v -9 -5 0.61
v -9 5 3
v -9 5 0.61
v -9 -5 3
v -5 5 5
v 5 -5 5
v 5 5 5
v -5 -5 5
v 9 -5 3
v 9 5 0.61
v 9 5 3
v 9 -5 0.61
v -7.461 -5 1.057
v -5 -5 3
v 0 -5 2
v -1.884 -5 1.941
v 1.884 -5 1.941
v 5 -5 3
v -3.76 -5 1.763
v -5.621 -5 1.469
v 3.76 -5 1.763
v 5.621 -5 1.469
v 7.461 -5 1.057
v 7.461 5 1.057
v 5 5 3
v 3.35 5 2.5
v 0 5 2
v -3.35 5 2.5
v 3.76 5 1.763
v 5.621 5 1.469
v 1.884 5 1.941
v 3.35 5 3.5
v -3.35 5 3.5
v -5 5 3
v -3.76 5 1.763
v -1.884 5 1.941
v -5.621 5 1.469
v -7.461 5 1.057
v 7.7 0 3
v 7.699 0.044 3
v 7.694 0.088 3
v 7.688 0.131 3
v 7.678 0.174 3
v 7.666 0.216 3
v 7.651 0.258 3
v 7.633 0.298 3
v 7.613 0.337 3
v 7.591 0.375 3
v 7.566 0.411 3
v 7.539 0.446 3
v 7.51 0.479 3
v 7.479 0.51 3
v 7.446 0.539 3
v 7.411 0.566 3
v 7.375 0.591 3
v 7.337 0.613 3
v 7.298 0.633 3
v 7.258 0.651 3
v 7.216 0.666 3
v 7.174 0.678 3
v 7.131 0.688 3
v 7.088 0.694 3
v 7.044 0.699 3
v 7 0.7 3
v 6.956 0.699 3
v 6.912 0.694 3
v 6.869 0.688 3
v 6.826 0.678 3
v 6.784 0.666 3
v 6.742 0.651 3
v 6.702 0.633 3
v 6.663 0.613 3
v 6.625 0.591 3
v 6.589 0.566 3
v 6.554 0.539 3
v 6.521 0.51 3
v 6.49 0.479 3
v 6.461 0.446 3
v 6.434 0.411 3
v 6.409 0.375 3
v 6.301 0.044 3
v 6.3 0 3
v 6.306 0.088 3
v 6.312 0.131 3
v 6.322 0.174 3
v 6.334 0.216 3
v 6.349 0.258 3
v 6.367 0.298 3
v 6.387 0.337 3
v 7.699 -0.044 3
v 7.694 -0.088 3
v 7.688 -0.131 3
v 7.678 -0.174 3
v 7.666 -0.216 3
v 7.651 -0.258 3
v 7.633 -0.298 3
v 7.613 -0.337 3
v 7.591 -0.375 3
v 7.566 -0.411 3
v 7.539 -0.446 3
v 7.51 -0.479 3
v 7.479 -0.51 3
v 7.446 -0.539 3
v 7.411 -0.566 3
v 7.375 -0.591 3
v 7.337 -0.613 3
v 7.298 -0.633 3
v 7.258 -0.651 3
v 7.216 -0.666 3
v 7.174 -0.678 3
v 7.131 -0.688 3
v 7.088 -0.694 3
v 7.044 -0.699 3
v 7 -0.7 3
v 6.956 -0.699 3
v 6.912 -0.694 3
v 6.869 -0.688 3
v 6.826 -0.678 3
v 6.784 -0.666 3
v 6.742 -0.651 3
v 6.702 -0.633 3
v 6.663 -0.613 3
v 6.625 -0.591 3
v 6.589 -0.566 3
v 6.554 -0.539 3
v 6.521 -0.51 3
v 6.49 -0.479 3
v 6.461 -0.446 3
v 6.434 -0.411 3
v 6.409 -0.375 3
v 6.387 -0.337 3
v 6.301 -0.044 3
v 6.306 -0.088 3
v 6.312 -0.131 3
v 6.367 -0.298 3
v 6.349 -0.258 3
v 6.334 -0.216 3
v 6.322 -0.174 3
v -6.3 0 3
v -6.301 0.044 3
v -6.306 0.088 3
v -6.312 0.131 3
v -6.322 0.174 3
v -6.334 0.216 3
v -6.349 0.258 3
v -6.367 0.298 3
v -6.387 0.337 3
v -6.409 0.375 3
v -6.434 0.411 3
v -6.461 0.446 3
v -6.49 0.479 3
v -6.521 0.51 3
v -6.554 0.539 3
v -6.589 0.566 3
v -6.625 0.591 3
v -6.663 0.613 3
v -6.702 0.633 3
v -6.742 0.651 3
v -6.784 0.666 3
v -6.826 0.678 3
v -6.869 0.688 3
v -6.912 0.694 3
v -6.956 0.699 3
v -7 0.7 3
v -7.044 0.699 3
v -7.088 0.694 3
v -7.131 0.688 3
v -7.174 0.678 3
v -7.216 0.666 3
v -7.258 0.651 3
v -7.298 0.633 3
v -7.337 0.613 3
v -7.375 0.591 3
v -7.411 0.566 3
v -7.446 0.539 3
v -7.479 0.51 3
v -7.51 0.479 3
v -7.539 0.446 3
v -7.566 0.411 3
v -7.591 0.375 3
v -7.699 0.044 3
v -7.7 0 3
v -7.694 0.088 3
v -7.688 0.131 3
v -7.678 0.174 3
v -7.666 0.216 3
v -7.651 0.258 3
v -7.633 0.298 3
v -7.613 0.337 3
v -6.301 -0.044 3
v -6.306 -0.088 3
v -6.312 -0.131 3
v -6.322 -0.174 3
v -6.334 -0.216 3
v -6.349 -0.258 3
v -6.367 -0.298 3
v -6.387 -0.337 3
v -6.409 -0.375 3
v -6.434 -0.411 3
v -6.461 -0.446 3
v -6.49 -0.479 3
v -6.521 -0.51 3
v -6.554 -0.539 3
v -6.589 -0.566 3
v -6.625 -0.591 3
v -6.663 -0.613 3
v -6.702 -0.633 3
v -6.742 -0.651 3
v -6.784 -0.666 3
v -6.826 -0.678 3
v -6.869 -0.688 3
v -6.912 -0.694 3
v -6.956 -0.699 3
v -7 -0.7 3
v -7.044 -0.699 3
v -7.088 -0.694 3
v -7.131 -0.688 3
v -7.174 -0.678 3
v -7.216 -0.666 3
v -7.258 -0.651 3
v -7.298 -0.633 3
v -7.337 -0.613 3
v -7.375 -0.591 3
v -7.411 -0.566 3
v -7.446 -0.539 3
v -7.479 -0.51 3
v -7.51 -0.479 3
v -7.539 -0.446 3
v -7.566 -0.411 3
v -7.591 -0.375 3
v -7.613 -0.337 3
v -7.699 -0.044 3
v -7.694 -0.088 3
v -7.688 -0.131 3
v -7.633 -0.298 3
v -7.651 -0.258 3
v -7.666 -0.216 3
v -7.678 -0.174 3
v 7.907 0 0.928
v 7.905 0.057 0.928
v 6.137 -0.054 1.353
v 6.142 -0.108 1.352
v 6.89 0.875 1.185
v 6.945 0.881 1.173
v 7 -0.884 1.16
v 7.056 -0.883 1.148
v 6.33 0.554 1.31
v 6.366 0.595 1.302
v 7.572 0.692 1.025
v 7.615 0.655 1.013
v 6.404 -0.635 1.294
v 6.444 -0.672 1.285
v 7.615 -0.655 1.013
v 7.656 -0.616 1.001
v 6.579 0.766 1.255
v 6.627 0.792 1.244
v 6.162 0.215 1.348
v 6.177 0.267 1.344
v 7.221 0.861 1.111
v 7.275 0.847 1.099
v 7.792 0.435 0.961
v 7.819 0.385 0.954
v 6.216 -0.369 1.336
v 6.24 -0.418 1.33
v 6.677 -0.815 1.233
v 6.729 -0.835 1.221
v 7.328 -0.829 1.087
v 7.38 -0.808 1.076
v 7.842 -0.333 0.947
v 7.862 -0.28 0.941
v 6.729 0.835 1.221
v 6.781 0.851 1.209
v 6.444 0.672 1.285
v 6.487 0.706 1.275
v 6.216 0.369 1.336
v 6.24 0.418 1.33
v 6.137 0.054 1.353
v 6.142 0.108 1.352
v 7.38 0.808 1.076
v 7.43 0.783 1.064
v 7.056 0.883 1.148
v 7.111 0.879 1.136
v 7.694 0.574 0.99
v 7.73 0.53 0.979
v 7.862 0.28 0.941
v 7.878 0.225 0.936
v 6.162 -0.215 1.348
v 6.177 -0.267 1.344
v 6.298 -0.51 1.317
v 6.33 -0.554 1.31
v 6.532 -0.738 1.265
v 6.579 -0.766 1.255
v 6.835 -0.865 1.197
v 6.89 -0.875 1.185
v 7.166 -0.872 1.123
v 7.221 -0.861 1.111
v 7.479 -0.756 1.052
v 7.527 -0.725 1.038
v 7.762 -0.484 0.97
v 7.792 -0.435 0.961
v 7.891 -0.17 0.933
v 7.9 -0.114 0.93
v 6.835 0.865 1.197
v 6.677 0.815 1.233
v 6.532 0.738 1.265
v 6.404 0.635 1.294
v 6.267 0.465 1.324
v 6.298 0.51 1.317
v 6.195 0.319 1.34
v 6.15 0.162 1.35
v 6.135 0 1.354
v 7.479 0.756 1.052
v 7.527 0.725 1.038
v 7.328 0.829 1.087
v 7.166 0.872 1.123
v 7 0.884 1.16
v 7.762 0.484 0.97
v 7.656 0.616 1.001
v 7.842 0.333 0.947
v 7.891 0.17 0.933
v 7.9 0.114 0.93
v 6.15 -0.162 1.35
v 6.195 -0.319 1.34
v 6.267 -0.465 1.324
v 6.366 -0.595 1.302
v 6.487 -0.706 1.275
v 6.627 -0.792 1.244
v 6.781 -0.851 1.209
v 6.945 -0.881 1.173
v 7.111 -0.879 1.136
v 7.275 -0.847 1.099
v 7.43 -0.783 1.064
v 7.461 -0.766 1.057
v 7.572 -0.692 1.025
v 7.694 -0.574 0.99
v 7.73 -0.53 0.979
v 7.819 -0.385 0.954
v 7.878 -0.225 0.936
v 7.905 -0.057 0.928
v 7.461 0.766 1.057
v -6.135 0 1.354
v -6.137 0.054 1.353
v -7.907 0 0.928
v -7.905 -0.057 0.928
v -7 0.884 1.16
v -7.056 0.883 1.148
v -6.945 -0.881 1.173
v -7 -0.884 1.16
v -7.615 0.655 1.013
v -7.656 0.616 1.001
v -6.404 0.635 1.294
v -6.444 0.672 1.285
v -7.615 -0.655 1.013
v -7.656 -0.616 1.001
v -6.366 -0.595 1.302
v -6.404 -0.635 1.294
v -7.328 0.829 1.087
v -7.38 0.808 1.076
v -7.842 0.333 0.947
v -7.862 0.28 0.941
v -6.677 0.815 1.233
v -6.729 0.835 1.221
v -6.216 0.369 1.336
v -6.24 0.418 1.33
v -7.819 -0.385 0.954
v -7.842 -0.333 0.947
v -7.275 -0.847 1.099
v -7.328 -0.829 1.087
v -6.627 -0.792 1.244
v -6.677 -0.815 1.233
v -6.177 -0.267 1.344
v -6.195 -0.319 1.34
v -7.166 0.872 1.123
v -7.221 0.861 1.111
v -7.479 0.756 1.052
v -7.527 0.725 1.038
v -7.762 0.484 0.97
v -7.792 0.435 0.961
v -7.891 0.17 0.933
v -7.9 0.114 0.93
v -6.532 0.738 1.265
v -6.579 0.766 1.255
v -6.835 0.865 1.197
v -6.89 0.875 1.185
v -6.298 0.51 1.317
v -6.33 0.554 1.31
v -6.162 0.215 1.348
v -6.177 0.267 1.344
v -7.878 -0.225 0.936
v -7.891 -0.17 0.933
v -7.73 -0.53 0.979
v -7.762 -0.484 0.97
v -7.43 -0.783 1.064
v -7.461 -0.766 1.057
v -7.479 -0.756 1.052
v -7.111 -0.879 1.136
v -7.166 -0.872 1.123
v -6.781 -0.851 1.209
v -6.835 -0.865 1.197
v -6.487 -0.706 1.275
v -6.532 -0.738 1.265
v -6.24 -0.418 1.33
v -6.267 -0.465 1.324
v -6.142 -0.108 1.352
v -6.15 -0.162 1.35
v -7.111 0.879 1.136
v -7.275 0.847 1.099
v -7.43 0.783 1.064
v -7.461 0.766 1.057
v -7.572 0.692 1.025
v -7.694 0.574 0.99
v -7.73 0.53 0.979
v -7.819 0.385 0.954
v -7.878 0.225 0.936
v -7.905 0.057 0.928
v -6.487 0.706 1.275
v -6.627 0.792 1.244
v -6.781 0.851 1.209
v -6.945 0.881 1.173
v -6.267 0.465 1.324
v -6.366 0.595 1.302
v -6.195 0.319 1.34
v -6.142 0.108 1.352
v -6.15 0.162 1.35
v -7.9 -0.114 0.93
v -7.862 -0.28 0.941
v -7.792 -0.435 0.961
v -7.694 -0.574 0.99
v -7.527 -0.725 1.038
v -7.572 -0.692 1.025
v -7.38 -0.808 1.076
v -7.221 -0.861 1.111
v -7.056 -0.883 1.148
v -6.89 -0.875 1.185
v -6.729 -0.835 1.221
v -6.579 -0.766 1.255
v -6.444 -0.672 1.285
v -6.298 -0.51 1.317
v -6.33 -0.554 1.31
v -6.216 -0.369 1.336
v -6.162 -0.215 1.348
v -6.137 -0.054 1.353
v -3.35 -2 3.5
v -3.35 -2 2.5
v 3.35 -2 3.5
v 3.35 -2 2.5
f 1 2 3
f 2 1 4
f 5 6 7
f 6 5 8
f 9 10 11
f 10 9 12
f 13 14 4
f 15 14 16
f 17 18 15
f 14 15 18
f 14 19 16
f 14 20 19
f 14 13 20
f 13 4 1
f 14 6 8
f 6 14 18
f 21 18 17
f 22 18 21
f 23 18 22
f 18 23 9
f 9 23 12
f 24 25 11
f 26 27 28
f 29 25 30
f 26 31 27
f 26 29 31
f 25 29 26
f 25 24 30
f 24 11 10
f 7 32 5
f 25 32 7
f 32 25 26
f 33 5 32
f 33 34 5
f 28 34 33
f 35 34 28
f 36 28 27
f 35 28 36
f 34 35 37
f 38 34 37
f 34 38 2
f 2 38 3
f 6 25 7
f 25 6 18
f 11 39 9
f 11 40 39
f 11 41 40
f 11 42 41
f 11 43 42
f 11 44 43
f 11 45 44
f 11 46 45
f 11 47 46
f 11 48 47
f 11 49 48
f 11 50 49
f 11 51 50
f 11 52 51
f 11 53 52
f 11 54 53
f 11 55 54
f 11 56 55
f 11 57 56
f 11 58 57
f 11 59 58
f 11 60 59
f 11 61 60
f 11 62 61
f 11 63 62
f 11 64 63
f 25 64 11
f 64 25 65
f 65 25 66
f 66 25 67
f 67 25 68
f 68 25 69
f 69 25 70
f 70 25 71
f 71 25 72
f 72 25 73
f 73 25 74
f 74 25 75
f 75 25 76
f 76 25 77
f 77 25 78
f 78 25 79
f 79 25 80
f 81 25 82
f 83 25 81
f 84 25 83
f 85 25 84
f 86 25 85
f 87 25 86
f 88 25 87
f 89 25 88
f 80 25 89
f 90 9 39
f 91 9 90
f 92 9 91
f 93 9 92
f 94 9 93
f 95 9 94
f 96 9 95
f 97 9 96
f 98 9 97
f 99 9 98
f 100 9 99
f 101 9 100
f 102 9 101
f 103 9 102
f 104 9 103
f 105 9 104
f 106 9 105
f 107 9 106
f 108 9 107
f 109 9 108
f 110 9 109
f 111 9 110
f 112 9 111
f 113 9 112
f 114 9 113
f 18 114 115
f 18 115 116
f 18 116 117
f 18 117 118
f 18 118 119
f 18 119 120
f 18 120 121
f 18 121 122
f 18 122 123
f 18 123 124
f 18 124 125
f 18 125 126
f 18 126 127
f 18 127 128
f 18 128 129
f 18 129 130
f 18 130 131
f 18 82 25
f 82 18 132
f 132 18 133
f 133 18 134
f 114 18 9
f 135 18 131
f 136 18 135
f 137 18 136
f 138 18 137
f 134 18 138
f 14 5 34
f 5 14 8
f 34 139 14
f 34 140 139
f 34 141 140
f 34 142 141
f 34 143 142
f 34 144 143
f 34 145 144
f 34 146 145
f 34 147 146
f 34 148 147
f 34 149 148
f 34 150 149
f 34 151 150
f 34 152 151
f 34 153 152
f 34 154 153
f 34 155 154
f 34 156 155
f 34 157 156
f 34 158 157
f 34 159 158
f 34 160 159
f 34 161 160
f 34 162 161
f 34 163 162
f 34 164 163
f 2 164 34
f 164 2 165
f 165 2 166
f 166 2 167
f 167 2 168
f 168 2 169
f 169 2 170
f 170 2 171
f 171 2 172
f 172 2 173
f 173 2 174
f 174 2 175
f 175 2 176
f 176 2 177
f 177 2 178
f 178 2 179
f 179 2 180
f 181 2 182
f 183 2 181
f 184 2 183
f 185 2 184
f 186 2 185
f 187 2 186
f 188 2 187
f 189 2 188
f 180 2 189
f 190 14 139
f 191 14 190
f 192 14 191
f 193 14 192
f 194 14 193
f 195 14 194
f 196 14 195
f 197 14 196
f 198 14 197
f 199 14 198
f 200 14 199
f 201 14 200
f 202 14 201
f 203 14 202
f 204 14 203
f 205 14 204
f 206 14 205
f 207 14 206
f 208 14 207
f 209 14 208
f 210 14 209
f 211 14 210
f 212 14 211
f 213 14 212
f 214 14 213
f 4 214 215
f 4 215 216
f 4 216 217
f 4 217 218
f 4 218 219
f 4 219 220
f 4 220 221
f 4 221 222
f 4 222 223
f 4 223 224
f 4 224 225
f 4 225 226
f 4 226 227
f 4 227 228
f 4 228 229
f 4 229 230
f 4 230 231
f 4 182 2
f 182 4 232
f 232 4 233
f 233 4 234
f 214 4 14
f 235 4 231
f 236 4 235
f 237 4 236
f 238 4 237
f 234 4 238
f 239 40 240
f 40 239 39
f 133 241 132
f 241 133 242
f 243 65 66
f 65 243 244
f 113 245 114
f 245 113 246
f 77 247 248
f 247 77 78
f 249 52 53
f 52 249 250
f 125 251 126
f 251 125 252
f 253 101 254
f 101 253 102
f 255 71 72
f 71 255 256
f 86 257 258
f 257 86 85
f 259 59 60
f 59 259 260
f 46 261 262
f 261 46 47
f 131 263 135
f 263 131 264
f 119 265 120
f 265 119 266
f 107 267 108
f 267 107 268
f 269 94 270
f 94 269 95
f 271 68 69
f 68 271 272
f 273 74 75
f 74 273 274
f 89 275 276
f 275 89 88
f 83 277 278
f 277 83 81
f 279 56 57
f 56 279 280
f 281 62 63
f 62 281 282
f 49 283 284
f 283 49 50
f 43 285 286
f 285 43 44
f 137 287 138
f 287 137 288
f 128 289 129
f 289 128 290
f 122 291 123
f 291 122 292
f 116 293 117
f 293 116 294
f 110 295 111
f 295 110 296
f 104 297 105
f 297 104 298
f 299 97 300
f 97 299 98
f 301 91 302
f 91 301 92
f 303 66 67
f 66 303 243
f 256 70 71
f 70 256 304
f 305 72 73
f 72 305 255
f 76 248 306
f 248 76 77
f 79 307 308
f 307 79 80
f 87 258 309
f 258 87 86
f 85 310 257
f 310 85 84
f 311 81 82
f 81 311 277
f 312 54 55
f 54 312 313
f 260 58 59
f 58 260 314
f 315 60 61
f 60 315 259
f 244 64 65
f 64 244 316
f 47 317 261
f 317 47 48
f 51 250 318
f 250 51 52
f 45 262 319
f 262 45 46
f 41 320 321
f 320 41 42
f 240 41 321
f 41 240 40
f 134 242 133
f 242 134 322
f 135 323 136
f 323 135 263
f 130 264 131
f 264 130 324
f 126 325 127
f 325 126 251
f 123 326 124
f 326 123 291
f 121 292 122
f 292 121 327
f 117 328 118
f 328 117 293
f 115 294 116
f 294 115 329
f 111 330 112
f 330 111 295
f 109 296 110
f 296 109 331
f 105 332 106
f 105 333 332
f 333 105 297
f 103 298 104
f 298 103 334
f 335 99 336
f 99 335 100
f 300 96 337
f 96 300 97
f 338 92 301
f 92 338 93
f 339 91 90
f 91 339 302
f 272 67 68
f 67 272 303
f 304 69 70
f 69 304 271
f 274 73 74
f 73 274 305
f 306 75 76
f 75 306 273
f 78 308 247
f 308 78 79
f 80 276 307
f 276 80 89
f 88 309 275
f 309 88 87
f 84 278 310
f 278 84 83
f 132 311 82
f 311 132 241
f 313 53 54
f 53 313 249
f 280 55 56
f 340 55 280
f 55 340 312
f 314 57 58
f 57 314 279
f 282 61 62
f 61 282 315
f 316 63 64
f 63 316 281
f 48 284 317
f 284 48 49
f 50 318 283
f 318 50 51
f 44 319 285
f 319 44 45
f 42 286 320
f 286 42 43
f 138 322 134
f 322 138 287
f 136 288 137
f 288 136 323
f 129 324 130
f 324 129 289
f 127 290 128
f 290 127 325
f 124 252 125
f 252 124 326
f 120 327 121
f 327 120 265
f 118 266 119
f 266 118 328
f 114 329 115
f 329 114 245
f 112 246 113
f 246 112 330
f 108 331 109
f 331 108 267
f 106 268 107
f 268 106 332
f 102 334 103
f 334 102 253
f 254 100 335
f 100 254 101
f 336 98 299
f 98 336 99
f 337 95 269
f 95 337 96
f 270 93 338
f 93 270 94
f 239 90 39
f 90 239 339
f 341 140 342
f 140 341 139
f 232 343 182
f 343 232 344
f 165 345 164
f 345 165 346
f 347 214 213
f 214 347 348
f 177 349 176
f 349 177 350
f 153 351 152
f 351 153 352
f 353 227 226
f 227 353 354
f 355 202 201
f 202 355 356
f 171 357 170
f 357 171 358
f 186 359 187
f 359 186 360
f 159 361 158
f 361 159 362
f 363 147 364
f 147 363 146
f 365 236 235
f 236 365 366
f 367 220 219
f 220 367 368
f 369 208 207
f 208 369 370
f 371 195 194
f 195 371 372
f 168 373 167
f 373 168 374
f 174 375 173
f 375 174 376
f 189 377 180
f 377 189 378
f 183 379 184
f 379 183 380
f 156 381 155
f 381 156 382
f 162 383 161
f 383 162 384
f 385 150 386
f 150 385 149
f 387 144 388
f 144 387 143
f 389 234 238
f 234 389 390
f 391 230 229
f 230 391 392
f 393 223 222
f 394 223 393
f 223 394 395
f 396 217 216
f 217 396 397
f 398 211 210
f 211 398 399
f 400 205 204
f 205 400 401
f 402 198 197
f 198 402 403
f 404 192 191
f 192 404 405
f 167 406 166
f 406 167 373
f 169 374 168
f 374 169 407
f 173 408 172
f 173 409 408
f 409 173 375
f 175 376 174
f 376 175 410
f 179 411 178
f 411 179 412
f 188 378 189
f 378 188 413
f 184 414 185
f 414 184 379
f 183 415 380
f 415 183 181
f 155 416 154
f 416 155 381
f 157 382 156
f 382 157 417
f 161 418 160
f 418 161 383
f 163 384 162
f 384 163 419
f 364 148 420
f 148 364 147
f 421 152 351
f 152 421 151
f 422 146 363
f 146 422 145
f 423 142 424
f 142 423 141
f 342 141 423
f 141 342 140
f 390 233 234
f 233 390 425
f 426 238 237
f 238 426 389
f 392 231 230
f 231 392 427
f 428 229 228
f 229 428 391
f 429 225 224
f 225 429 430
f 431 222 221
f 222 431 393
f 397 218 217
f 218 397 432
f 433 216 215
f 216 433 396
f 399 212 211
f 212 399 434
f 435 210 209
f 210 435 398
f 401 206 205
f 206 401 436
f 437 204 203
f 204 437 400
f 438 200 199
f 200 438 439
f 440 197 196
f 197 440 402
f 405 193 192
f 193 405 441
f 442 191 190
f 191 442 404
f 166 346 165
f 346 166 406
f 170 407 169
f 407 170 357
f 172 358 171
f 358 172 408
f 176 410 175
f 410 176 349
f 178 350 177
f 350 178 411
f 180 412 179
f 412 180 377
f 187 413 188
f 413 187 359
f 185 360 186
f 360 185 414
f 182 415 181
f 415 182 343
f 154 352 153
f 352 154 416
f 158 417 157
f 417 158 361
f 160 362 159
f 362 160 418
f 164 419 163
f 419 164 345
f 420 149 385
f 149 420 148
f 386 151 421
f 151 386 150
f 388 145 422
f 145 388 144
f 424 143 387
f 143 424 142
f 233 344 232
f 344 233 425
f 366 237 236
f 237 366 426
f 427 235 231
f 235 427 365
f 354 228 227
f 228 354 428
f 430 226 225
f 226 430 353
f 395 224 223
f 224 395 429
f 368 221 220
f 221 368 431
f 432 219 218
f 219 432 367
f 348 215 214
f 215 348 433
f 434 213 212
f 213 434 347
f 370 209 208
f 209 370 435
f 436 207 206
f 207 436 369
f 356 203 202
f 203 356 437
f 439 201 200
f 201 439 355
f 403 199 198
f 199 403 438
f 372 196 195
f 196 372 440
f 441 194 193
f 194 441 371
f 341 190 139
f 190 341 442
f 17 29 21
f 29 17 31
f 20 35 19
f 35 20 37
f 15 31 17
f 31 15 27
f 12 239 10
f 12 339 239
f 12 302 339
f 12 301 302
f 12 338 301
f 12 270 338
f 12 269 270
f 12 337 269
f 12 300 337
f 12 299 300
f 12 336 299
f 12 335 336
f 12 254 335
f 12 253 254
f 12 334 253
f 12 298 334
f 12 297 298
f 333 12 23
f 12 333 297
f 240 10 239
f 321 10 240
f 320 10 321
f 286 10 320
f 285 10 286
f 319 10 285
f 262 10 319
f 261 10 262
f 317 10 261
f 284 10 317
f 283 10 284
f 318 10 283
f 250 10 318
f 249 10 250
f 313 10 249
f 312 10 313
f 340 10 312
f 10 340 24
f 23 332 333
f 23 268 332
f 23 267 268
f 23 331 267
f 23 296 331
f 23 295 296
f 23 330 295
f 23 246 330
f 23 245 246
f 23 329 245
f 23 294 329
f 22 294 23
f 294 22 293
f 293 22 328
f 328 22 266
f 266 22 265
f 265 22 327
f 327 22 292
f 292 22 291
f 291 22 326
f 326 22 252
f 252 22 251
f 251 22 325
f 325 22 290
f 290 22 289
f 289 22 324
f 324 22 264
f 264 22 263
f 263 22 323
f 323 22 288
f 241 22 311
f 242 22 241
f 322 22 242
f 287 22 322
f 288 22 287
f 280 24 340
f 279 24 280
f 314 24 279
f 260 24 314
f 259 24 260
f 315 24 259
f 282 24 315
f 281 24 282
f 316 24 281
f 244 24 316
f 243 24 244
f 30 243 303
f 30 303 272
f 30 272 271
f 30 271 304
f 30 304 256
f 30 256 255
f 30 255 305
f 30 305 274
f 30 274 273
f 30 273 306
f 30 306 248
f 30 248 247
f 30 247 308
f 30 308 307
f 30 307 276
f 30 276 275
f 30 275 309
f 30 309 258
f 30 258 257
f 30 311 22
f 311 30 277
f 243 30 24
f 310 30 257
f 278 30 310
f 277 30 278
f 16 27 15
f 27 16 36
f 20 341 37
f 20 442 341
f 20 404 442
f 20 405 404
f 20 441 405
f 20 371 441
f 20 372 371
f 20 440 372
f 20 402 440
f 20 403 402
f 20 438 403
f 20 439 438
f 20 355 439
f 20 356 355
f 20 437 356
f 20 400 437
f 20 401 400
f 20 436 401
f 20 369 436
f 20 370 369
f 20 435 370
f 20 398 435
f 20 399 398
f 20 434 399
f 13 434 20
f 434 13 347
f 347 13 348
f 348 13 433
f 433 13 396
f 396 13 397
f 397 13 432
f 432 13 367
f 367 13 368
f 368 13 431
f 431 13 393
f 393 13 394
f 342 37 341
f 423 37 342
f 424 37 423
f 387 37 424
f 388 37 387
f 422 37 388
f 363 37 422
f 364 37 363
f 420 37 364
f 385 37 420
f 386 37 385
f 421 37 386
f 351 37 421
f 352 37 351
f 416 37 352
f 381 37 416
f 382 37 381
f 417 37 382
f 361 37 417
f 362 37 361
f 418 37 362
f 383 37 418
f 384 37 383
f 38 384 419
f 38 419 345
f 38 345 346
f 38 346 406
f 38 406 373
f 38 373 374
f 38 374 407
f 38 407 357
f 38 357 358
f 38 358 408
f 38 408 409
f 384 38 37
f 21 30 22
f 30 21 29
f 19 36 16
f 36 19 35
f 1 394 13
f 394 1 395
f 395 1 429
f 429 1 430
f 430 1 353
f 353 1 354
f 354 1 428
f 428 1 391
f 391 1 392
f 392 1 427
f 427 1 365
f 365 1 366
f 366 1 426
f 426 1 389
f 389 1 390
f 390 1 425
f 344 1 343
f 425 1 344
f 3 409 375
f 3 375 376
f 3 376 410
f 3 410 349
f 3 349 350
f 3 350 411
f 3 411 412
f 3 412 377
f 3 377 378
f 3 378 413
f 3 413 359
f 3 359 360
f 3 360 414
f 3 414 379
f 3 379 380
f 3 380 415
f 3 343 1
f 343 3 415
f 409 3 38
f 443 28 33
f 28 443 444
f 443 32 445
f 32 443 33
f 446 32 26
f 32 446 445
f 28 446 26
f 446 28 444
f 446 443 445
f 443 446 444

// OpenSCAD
difference() {
    translate([-9, -5, 0])
    cube([18, 10, 5]);
    
    translate([5, -5, 3])
    cube([5, 10, 3]);
    
    translate([-10, -5, 3])
    cube([5, 10, 3]);
    
    translate([7, 0, 0])
    cylinder(h=10, r1=1, r2=0, $fn=100);
    
    translate([-7, 0, 0])
    cylinder(h=10,r1=1, r2=0, $fn=100);
    
    translate([0, 0, -28])
    rotate([90,0,0])
    cylinder(h=11, r1=30, r2=30, center=true, $fn=100);
    
    translate([0, 3, 3])
    cube([6.7, 10, 1], center = true);
}
